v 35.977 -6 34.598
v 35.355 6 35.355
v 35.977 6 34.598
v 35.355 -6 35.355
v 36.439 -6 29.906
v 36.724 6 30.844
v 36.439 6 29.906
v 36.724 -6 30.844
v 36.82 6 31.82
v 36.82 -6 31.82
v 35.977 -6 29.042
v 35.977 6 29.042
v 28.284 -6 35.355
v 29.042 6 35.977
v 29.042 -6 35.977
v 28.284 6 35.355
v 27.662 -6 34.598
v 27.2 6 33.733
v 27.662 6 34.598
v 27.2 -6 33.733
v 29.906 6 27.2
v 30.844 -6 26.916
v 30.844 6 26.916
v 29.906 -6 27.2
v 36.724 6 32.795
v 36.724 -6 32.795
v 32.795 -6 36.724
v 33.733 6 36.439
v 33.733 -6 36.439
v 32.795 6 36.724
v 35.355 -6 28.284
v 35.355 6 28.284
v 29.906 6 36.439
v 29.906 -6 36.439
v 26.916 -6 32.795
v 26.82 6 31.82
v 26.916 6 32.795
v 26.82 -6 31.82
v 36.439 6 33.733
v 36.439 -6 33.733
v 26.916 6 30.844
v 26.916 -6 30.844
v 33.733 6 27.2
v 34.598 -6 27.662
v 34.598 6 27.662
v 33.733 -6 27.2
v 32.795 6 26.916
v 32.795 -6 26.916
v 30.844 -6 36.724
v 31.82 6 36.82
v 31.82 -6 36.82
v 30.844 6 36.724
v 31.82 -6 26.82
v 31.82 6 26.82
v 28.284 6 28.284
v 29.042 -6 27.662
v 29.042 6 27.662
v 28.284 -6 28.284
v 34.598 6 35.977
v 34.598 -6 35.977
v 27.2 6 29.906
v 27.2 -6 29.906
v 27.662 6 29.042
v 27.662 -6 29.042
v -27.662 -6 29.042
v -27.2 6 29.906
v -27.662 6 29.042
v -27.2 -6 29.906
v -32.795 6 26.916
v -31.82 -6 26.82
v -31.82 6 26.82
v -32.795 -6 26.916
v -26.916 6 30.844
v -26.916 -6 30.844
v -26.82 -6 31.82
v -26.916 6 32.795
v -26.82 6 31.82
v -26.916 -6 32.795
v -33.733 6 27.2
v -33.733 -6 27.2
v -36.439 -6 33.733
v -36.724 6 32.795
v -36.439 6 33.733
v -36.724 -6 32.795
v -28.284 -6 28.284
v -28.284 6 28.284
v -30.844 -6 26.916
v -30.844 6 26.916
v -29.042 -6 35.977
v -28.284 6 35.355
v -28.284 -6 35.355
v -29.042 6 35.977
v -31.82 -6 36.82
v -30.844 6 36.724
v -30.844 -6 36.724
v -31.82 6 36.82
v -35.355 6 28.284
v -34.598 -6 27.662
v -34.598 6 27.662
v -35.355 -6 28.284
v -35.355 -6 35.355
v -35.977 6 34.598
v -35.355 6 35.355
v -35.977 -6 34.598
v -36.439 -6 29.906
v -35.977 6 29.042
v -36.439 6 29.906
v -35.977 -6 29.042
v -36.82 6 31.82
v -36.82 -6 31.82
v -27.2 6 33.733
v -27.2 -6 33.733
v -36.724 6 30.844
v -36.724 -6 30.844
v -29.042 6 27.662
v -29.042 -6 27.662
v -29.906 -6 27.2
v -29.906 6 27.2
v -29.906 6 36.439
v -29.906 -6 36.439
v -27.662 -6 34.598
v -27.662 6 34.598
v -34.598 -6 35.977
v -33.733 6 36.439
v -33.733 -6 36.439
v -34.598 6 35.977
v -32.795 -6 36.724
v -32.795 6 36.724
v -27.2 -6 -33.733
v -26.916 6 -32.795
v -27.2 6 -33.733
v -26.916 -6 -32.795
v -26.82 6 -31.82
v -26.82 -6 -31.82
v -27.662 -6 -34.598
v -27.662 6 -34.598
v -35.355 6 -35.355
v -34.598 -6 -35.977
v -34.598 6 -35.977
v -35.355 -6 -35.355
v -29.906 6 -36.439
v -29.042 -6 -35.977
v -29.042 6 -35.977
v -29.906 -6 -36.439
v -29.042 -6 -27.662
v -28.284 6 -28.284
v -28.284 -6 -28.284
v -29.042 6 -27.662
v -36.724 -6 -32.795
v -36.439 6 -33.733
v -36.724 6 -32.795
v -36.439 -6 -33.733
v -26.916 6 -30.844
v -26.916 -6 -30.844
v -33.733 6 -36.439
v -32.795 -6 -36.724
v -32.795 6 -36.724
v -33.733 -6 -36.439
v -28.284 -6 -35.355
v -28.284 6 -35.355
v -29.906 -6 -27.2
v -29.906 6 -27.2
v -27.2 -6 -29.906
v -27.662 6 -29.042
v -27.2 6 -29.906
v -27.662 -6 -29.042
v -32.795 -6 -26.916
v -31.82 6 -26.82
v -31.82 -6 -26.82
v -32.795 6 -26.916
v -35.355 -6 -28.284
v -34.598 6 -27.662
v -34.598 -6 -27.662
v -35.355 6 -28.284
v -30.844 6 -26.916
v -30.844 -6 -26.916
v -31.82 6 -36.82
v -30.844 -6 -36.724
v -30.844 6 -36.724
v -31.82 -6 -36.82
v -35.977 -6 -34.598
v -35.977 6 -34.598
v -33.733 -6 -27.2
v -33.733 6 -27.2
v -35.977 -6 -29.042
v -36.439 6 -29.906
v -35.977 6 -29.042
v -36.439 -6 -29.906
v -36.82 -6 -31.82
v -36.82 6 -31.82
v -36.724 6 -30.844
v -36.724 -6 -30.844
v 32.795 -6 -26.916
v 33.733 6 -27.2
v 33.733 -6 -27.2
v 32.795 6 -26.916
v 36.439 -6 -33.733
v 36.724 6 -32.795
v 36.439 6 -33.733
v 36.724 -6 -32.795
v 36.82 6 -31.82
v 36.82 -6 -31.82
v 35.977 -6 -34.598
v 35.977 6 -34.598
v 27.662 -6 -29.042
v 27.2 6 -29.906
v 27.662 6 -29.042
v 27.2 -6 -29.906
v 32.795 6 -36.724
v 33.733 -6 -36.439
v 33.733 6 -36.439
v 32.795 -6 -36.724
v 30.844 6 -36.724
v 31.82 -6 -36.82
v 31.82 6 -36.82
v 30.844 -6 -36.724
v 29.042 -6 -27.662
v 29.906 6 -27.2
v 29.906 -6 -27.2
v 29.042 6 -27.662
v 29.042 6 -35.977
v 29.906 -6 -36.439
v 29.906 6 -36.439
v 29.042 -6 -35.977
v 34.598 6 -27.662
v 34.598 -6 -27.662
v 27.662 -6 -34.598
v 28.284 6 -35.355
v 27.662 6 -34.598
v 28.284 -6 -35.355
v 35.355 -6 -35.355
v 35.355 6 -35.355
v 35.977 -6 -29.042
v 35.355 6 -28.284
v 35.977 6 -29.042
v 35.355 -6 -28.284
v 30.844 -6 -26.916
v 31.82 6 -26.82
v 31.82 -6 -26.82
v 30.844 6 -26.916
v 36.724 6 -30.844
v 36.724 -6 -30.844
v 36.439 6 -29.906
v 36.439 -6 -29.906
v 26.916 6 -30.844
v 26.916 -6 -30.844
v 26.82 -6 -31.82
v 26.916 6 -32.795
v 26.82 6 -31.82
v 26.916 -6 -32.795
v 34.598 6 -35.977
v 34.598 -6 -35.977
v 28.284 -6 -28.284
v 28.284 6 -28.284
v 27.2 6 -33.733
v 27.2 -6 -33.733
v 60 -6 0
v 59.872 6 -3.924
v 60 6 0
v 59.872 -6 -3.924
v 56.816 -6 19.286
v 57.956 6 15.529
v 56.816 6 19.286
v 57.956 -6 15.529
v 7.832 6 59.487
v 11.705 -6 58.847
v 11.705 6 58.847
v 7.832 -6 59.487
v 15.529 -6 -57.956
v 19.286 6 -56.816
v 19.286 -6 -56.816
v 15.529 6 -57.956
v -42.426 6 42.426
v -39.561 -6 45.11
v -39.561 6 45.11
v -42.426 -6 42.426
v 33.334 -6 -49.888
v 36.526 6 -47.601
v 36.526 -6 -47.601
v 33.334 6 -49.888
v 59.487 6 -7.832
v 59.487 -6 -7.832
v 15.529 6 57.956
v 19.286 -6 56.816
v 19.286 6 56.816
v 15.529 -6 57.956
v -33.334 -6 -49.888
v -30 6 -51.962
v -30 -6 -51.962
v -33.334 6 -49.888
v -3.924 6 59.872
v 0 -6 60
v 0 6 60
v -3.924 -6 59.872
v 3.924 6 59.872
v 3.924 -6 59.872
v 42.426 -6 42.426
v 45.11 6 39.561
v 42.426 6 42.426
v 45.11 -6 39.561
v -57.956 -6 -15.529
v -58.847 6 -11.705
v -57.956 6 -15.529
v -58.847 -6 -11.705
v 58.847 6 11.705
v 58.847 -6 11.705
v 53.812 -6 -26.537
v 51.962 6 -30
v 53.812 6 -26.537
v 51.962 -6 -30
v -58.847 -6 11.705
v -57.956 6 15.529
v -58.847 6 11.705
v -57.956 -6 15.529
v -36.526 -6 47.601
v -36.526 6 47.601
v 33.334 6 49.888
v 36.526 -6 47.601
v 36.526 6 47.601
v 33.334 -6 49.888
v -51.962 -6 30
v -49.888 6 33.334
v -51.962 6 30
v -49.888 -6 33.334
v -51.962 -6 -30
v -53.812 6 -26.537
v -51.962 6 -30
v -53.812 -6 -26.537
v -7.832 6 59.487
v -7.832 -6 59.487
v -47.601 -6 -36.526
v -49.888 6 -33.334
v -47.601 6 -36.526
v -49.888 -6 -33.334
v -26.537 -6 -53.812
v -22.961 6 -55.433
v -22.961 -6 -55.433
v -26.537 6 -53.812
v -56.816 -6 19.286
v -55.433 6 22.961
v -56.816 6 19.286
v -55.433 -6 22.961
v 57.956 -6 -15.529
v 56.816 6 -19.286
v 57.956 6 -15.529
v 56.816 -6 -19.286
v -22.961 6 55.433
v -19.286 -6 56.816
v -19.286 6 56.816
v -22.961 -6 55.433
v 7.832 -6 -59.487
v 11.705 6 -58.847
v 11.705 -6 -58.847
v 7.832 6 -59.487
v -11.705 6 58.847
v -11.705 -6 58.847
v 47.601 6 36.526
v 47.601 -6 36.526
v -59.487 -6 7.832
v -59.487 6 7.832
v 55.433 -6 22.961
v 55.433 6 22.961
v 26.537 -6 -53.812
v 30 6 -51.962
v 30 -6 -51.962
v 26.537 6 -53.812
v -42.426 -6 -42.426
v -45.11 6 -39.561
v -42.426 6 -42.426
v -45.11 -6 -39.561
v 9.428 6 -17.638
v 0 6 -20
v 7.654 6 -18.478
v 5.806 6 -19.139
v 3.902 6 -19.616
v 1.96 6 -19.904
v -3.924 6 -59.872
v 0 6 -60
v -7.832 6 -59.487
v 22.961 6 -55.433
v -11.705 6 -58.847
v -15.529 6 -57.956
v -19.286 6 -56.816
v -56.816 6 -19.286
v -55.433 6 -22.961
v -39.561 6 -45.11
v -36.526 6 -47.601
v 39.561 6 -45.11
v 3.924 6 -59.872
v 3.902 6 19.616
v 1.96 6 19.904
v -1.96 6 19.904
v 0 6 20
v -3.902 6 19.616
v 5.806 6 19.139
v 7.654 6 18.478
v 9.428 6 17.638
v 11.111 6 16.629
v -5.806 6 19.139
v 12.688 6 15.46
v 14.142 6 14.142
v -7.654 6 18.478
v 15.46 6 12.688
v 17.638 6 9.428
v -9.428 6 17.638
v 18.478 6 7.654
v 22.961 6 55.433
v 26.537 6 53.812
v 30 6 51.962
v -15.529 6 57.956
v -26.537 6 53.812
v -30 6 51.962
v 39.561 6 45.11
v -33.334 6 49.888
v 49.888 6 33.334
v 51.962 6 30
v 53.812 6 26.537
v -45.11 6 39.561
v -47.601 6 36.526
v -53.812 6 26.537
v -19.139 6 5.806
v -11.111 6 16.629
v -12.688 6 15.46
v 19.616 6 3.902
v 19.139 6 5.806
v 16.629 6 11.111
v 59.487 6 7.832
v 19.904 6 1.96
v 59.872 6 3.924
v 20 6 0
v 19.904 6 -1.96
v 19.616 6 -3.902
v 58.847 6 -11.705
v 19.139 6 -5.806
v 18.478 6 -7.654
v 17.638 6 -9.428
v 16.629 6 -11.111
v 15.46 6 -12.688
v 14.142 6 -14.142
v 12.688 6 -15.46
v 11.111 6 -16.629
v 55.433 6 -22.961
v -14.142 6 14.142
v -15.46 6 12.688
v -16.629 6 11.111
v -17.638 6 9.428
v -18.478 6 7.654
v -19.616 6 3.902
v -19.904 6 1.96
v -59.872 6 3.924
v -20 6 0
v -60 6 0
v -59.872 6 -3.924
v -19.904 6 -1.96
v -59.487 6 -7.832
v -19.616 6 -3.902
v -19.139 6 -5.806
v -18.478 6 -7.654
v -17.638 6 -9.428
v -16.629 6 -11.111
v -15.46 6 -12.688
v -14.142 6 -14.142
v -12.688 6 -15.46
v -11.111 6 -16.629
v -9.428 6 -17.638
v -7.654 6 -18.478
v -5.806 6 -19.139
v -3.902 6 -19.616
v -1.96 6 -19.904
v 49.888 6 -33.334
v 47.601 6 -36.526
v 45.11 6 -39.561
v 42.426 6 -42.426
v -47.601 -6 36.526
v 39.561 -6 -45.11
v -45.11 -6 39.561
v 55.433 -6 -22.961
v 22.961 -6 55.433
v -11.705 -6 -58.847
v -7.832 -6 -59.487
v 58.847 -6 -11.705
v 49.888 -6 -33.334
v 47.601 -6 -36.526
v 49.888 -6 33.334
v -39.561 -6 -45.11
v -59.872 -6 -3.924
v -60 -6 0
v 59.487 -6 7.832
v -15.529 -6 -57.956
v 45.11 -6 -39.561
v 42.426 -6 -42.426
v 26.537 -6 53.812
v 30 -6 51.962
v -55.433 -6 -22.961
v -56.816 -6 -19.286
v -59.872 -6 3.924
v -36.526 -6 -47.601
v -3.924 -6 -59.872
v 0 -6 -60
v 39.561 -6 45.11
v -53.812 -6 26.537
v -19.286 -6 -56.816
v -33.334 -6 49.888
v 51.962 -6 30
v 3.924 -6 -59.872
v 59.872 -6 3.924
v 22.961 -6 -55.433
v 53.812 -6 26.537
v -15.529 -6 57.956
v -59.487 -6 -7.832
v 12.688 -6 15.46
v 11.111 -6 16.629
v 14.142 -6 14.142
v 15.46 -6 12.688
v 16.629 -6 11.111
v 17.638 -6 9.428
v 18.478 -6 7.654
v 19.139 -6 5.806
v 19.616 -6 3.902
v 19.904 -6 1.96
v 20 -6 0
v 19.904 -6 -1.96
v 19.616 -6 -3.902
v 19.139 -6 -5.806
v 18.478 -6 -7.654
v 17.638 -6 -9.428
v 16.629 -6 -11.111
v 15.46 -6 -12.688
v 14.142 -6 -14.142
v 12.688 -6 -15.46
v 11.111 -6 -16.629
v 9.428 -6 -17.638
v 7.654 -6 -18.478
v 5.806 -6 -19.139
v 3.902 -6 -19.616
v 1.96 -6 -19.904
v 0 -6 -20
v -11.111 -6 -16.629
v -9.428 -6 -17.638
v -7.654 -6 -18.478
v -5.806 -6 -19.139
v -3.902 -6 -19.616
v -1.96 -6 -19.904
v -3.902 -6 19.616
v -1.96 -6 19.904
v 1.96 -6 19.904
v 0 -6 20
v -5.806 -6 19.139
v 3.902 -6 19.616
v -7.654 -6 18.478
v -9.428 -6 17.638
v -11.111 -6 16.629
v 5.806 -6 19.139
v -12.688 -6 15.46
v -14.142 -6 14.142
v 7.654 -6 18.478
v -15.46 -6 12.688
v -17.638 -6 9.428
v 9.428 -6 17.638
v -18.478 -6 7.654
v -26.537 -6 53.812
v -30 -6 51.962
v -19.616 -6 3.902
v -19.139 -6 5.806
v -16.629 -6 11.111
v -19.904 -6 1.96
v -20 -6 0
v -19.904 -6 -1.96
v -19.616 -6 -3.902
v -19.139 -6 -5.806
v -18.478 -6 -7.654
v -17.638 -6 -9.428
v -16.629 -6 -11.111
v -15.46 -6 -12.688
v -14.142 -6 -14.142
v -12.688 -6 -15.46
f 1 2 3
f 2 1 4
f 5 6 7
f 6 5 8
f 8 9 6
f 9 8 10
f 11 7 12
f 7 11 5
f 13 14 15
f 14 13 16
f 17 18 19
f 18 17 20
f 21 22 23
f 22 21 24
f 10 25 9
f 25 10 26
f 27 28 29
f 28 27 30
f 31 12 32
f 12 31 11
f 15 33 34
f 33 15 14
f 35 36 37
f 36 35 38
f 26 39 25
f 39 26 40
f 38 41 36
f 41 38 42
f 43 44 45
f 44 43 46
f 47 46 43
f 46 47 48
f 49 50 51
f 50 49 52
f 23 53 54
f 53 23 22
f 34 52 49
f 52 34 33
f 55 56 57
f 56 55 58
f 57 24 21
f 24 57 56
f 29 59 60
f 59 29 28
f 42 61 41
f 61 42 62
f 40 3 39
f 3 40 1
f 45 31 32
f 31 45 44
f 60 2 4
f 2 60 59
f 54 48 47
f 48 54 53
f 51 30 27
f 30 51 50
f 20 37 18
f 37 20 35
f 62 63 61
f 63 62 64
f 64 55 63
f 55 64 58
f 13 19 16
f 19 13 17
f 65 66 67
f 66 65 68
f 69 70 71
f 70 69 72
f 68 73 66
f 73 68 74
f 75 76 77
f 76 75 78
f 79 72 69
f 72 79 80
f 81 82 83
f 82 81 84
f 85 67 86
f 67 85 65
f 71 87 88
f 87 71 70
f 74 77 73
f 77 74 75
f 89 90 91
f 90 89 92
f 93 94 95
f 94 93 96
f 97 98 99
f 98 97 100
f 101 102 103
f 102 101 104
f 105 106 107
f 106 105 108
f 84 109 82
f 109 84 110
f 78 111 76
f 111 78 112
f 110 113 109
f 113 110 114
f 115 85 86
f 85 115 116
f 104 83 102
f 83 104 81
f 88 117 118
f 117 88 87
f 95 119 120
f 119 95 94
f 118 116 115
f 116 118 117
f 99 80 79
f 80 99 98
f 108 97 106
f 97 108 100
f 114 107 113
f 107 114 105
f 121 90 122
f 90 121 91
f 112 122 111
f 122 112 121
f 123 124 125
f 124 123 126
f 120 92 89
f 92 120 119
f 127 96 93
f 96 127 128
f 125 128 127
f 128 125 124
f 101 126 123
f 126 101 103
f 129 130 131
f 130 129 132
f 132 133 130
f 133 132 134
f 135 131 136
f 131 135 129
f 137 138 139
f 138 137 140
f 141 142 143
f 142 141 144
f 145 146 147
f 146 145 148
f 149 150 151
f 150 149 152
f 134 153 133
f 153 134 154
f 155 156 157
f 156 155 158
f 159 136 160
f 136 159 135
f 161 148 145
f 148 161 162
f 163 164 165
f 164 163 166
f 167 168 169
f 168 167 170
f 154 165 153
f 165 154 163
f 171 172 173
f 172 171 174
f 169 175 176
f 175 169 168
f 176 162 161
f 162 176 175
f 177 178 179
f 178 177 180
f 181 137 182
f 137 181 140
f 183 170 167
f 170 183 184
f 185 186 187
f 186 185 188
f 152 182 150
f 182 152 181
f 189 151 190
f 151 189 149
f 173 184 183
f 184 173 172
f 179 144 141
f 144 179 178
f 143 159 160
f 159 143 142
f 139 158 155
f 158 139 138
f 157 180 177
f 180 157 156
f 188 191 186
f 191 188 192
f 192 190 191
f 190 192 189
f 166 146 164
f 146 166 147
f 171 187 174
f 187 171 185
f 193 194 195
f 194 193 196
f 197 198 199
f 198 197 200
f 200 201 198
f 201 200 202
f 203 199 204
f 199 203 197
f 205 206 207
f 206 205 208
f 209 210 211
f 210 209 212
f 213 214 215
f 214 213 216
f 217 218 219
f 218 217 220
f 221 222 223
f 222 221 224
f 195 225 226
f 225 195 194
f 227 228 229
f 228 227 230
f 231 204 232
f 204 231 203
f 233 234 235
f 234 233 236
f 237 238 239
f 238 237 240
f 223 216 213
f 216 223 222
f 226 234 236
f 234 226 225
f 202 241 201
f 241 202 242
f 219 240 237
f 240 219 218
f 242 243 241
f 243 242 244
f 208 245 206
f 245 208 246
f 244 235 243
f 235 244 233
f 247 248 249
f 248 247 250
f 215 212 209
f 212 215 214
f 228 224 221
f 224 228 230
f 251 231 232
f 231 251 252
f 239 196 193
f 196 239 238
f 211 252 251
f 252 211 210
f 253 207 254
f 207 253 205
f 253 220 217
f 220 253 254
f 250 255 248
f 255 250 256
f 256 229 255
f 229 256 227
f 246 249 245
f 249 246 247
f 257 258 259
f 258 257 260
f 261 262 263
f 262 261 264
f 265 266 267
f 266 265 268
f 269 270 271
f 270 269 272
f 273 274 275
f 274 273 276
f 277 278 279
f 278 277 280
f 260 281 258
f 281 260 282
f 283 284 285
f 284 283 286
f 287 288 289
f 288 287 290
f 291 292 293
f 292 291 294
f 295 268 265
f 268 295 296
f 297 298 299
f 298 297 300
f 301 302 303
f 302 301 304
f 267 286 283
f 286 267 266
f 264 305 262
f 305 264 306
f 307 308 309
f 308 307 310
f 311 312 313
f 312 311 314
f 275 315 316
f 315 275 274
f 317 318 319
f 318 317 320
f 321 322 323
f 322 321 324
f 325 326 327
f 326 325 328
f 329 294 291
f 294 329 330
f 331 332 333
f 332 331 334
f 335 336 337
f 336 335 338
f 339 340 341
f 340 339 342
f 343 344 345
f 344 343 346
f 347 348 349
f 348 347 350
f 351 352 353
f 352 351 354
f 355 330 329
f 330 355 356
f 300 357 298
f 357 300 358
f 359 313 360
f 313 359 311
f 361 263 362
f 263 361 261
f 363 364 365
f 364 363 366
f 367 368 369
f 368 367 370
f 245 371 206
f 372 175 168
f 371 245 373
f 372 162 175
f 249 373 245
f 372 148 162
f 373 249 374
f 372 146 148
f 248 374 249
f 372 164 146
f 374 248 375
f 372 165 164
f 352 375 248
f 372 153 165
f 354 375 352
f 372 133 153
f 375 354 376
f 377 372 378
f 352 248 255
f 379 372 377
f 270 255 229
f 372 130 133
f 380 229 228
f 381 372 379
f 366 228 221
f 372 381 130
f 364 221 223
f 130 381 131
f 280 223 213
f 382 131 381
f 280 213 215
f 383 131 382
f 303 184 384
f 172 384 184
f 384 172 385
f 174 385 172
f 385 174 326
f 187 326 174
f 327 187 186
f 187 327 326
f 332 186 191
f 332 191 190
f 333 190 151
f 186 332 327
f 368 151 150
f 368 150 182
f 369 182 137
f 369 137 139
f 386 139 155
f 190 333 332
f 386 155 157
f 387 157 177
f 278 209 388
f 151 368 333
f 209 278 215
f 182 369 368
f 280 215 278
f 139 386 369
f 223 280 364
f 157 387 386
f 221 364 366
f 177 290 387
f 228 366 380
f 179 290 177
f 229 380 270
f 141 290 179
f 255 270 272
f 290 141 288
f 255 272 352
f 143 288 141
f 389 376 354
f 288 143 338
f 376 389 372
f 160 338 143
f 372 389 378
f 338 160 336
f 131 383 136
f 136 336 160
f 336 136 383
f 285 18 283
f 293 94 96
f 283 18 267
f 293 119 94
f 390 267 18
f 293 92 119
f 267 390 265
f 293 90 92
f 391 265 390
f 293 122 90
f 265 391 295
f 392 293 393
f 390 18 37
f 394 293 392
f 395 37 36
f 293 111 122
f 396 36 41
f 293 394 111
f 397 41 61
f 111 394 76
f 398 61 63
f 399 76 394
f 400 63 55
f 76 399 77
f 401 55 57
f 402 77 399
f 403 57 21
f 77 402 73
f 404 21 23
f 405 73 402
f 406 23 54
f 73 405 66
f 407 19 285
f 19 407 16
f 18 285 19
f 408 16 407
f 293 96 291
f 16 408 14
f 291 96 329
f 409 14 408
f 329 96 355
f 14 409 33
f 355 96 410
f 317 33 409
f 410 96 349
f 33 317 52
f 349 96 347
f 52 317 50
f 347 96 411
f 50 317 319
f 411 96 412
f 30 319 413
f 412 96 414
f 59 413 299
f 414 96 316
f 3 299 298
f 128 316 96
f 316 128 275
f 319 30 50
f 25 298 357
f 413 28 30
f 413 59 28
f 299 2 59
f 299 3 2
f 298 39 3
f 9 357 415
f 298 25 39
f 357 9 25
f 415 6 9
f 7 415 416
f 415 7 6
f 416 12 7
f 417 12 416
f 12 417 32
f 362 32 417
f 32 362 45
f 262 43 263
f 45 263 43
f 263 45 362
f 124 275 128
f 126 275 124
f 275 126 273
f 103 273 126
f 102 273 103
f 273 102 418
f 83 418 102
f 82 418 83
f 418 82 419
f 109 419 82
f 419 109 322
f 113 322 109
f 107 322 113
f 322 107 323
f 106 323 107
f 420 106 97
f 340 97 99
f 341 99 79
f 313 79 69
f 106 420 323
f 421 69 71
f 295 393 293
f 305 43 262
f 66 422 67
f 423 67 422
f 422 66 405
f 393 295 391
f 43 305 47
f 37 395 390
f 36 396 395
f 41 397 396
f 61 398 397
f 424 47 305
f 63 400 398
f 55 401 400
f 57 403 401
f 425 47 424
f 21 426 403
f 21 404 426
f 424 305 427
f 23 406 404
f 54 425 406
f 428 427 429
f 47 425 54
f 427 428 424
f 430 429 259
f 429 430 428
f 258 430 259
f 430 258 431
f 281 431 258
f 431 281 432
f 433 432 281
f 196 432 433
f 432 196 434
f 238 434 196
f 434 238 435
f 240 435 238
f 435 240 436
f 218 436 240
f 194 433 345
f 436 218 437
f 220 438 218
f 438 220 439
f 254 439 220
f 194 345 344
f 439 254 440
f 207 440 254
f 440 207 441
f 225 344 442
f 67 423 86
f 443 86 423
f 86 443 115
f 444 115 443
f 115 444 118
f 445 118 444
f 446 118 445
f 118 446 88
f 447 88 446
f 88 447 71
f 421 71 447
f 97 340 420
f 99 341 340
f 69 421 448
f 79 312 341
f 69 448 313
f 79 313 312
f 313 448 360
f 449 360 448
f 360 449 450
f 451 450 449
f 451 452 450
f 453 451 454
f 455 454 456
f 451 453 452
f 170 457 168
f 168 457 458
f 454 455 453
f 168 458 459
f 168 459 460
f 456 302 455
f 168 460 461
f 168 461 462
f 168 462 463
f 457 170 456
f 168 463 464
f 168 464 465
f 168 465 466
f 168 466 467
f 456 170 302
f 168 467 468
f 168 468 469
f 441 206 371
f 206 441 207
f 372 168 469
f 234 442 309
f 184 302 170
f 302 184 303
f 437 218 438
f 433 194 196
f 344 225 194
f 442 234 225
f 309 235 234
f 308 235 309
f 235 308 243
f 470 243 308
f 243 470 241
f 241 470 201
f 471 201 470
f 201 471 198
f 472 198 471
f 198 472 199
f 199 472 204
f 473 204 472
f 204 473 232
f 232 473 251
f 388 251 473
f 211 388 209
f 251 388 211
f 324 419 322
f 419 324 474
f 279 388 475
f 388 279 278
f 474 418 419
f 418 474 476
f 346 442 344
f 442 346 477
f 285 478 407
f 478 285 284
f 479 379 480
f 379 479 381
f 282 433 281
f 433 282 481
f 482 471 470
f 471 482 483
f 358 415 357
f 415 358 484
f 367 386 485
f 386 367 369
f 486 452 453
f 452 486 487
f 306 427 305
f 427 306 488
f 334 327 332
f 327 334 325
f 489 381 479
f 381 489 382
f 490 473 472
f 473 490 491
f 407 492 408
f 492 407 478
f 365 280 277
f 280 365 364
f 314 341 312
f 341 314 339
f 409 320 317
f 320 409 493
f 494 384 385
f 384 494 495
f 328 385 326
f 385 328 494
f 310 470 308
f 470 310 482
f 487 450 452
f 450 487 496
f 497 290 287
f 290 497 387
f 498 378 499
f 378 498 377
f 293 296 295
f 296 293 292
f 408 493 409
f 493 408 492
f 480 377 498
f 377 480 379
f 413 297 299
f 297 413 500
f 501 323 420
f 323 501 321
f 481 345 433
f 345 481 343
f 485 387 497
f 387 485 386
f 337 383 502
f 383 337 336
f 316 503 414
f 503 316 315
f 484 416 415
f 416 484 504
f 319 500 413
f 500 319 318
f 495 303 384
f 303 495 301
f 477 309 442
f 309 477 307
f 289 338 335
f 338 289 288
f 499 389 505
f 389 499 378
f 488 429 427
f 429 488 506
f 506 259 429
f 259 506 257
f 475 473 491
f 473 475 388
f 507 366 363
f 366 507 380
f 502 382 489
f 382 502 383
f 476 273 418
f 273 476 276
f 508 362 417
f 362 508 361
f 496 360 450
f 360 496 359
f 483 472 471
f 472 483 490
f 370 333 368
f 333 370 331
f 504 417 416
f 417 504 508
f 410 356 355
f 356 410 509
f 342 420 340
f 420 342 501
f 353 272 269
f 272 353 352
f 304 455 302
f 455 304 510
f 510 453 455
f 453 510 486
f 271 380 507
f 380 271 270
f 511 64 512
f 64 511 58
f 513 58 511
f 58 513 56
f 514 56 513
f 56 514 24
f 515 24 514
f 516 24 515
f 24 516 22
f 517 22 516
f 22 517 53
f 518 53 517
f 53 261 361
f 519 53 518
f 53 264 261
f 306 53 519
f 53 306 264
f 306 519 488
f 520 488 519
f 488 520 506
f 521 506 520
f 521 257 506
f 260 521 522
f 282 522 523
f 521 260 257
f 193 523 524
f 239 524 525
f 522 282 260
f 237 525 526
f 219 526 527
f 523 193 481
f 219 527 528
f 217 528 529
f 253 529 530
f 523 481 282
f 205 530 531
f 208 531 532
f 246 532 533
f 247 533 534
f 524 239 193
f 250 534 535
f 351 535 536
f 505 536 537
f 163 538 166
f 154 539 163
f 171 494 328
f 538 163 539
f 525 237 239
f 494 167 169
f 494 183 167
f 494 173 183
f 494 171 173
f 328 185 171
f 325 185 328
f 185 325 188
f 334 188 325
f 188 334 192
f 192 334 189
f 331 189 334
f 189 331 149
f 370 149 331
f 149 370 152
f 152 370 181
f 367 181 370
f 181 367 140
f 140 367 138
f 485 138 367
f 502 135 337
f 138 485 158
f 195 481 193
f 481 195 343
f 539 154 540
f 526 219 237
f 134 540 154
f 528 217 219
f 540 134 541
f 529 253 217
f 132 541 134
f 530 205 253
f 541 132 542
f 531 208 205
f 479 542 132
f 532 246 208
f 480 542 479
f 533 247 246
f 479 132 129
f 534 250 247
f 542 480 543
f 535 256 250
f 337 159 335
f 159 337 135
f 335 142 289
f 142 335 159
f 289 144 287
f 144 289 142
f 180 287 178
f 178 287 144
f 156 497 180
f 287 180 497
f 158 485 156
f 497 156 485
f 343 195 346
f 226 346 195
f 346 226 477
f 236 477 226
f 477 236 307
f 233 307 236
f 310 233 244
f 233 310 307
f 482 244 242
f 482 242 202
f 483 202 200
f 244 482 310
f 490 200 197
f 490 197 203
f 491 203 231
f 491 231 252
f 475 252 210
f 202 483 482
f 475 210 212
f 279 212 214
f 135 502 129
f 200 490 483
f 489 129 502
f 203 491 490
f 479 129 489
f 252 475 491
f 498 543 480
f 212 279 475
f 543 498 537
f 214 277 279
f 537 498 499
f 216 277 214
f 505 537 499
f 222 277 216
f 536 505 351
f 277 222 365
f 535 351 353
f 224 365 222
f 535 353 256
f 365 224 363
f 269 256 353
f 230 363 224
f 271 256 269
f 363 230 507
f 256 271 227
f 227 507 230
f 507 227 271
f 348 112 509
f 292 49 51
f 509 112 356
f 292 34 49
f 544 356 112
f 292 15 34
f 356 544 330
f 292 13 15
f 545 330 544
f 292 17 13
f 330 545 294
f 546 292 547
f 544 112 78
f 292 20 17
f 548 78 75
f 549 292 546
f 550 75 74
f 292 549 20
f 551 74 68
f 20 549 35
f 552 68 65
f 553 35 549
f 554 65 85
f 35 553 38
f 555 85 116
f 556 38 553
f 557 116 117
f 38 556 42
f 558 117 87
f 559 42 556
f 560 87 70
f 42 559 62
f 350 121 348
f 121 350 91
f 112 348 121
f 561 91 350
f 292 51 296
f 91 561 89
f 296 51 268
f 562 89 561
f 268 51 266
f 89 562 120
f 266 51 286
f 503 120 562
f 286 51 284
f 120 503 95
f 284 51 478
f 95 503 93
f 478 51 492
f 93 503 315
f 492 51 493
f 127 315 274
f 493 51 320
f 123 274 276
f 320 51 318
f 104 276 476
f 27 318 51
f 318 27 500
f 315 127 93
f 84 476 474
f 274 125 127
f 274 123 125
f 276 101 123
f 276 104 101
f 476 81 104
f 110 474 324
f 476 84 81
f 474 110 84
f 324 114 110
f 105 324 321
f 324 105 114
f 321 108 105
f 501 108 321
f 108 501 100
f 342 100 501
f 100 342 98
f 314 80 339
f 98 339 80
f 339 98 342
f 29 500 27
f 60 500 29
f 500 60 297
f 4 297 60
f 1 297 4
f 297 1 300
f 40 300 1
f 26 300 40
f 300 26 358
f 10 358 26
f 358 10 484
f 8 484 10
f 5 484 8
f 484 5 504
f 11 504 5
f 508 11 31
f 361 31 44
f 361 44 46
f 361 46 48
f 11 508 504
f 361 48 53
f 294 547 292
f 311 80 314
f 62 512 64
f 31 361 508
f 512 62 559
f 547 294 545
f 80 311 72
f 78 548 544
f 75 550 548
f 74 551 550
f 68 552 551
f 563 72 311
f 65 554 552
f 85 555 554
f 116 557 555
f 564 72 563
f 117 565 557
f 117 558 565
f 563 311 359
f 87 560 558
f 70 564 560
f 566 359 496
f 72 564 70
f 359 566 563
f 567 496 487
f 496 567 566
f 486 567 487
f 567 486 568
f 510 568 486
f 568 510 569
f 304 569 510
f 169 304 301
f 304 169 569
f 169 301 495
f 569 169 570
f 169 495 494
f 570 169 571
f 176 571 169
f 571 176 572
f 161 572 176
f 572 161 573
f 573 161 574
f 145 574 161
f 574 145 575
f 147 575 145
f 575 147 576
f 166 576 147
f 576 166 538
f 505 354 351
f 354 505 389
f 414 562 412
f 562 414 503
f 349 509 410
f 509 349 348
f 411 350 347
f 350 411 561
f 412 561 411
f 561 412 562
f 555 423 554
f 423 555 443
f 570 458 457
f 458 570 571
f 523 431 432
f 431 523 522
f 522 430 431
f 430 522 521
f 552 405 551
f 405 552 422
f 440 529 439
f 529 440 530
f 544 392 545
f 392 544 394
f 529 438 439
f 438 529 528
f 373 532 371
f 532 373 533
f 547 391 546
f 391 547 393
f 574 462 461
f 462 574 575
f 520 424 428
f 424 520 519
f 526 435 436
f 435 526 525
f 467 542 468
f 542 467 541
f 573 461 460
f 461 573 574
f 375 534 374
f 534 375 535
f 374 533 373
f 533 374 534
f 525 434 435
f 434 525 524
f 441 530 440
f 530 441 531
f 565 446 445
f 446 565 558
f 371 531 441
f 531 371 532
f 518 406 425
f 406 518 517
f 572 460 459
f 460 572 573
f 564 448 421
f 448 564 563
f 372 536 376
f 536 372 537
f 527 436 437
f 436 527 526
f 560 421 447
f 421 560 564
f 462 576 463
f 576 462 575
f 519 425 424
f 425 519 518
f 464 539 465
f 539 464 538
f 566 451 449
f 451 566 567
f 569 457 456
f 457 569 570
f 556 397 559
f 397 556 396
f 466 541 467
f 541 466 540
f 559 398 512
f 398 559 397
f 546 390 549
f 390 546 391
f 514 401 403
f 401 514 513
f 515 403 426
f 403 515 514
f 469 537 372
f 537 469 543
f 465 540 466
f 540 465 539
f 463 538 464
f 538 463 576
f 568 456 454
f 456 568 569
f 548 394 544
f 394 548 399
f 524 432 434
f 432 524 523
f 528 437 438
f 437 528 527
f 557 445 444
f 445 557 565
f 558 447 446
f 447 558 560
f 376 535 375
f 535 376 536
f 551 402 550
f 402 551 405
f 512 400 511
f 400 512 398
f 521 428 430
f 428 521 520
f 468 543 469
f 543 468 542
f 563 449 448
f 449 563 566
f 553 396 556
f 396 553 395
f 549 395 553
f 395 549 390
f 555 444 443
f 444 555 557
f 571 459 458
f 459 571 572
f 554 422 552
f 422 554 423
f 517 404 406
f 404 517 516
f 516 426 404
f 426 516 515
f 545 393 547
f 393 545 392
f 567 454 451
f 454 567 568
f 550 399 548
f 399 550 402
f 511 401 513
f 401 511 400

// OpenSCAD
// Flange: disc d120 axis Y centered y=-6..6, thickness 12.
difference() {
  translate([0,-6,0]) rotate([-90,0,0]) cylinder(d=120,h=12,$fn=96);
  translate([0,-7,0]) rotate([-90,0,0]) cylinder(d=40,h=14,$fn=64);
  for (a=[45:90:315])
    translate([45*cos(a),-7,45*sin(a)]) rotate([-90,0,0]) cylinder(d=10,h=14,$fn=32);
}
